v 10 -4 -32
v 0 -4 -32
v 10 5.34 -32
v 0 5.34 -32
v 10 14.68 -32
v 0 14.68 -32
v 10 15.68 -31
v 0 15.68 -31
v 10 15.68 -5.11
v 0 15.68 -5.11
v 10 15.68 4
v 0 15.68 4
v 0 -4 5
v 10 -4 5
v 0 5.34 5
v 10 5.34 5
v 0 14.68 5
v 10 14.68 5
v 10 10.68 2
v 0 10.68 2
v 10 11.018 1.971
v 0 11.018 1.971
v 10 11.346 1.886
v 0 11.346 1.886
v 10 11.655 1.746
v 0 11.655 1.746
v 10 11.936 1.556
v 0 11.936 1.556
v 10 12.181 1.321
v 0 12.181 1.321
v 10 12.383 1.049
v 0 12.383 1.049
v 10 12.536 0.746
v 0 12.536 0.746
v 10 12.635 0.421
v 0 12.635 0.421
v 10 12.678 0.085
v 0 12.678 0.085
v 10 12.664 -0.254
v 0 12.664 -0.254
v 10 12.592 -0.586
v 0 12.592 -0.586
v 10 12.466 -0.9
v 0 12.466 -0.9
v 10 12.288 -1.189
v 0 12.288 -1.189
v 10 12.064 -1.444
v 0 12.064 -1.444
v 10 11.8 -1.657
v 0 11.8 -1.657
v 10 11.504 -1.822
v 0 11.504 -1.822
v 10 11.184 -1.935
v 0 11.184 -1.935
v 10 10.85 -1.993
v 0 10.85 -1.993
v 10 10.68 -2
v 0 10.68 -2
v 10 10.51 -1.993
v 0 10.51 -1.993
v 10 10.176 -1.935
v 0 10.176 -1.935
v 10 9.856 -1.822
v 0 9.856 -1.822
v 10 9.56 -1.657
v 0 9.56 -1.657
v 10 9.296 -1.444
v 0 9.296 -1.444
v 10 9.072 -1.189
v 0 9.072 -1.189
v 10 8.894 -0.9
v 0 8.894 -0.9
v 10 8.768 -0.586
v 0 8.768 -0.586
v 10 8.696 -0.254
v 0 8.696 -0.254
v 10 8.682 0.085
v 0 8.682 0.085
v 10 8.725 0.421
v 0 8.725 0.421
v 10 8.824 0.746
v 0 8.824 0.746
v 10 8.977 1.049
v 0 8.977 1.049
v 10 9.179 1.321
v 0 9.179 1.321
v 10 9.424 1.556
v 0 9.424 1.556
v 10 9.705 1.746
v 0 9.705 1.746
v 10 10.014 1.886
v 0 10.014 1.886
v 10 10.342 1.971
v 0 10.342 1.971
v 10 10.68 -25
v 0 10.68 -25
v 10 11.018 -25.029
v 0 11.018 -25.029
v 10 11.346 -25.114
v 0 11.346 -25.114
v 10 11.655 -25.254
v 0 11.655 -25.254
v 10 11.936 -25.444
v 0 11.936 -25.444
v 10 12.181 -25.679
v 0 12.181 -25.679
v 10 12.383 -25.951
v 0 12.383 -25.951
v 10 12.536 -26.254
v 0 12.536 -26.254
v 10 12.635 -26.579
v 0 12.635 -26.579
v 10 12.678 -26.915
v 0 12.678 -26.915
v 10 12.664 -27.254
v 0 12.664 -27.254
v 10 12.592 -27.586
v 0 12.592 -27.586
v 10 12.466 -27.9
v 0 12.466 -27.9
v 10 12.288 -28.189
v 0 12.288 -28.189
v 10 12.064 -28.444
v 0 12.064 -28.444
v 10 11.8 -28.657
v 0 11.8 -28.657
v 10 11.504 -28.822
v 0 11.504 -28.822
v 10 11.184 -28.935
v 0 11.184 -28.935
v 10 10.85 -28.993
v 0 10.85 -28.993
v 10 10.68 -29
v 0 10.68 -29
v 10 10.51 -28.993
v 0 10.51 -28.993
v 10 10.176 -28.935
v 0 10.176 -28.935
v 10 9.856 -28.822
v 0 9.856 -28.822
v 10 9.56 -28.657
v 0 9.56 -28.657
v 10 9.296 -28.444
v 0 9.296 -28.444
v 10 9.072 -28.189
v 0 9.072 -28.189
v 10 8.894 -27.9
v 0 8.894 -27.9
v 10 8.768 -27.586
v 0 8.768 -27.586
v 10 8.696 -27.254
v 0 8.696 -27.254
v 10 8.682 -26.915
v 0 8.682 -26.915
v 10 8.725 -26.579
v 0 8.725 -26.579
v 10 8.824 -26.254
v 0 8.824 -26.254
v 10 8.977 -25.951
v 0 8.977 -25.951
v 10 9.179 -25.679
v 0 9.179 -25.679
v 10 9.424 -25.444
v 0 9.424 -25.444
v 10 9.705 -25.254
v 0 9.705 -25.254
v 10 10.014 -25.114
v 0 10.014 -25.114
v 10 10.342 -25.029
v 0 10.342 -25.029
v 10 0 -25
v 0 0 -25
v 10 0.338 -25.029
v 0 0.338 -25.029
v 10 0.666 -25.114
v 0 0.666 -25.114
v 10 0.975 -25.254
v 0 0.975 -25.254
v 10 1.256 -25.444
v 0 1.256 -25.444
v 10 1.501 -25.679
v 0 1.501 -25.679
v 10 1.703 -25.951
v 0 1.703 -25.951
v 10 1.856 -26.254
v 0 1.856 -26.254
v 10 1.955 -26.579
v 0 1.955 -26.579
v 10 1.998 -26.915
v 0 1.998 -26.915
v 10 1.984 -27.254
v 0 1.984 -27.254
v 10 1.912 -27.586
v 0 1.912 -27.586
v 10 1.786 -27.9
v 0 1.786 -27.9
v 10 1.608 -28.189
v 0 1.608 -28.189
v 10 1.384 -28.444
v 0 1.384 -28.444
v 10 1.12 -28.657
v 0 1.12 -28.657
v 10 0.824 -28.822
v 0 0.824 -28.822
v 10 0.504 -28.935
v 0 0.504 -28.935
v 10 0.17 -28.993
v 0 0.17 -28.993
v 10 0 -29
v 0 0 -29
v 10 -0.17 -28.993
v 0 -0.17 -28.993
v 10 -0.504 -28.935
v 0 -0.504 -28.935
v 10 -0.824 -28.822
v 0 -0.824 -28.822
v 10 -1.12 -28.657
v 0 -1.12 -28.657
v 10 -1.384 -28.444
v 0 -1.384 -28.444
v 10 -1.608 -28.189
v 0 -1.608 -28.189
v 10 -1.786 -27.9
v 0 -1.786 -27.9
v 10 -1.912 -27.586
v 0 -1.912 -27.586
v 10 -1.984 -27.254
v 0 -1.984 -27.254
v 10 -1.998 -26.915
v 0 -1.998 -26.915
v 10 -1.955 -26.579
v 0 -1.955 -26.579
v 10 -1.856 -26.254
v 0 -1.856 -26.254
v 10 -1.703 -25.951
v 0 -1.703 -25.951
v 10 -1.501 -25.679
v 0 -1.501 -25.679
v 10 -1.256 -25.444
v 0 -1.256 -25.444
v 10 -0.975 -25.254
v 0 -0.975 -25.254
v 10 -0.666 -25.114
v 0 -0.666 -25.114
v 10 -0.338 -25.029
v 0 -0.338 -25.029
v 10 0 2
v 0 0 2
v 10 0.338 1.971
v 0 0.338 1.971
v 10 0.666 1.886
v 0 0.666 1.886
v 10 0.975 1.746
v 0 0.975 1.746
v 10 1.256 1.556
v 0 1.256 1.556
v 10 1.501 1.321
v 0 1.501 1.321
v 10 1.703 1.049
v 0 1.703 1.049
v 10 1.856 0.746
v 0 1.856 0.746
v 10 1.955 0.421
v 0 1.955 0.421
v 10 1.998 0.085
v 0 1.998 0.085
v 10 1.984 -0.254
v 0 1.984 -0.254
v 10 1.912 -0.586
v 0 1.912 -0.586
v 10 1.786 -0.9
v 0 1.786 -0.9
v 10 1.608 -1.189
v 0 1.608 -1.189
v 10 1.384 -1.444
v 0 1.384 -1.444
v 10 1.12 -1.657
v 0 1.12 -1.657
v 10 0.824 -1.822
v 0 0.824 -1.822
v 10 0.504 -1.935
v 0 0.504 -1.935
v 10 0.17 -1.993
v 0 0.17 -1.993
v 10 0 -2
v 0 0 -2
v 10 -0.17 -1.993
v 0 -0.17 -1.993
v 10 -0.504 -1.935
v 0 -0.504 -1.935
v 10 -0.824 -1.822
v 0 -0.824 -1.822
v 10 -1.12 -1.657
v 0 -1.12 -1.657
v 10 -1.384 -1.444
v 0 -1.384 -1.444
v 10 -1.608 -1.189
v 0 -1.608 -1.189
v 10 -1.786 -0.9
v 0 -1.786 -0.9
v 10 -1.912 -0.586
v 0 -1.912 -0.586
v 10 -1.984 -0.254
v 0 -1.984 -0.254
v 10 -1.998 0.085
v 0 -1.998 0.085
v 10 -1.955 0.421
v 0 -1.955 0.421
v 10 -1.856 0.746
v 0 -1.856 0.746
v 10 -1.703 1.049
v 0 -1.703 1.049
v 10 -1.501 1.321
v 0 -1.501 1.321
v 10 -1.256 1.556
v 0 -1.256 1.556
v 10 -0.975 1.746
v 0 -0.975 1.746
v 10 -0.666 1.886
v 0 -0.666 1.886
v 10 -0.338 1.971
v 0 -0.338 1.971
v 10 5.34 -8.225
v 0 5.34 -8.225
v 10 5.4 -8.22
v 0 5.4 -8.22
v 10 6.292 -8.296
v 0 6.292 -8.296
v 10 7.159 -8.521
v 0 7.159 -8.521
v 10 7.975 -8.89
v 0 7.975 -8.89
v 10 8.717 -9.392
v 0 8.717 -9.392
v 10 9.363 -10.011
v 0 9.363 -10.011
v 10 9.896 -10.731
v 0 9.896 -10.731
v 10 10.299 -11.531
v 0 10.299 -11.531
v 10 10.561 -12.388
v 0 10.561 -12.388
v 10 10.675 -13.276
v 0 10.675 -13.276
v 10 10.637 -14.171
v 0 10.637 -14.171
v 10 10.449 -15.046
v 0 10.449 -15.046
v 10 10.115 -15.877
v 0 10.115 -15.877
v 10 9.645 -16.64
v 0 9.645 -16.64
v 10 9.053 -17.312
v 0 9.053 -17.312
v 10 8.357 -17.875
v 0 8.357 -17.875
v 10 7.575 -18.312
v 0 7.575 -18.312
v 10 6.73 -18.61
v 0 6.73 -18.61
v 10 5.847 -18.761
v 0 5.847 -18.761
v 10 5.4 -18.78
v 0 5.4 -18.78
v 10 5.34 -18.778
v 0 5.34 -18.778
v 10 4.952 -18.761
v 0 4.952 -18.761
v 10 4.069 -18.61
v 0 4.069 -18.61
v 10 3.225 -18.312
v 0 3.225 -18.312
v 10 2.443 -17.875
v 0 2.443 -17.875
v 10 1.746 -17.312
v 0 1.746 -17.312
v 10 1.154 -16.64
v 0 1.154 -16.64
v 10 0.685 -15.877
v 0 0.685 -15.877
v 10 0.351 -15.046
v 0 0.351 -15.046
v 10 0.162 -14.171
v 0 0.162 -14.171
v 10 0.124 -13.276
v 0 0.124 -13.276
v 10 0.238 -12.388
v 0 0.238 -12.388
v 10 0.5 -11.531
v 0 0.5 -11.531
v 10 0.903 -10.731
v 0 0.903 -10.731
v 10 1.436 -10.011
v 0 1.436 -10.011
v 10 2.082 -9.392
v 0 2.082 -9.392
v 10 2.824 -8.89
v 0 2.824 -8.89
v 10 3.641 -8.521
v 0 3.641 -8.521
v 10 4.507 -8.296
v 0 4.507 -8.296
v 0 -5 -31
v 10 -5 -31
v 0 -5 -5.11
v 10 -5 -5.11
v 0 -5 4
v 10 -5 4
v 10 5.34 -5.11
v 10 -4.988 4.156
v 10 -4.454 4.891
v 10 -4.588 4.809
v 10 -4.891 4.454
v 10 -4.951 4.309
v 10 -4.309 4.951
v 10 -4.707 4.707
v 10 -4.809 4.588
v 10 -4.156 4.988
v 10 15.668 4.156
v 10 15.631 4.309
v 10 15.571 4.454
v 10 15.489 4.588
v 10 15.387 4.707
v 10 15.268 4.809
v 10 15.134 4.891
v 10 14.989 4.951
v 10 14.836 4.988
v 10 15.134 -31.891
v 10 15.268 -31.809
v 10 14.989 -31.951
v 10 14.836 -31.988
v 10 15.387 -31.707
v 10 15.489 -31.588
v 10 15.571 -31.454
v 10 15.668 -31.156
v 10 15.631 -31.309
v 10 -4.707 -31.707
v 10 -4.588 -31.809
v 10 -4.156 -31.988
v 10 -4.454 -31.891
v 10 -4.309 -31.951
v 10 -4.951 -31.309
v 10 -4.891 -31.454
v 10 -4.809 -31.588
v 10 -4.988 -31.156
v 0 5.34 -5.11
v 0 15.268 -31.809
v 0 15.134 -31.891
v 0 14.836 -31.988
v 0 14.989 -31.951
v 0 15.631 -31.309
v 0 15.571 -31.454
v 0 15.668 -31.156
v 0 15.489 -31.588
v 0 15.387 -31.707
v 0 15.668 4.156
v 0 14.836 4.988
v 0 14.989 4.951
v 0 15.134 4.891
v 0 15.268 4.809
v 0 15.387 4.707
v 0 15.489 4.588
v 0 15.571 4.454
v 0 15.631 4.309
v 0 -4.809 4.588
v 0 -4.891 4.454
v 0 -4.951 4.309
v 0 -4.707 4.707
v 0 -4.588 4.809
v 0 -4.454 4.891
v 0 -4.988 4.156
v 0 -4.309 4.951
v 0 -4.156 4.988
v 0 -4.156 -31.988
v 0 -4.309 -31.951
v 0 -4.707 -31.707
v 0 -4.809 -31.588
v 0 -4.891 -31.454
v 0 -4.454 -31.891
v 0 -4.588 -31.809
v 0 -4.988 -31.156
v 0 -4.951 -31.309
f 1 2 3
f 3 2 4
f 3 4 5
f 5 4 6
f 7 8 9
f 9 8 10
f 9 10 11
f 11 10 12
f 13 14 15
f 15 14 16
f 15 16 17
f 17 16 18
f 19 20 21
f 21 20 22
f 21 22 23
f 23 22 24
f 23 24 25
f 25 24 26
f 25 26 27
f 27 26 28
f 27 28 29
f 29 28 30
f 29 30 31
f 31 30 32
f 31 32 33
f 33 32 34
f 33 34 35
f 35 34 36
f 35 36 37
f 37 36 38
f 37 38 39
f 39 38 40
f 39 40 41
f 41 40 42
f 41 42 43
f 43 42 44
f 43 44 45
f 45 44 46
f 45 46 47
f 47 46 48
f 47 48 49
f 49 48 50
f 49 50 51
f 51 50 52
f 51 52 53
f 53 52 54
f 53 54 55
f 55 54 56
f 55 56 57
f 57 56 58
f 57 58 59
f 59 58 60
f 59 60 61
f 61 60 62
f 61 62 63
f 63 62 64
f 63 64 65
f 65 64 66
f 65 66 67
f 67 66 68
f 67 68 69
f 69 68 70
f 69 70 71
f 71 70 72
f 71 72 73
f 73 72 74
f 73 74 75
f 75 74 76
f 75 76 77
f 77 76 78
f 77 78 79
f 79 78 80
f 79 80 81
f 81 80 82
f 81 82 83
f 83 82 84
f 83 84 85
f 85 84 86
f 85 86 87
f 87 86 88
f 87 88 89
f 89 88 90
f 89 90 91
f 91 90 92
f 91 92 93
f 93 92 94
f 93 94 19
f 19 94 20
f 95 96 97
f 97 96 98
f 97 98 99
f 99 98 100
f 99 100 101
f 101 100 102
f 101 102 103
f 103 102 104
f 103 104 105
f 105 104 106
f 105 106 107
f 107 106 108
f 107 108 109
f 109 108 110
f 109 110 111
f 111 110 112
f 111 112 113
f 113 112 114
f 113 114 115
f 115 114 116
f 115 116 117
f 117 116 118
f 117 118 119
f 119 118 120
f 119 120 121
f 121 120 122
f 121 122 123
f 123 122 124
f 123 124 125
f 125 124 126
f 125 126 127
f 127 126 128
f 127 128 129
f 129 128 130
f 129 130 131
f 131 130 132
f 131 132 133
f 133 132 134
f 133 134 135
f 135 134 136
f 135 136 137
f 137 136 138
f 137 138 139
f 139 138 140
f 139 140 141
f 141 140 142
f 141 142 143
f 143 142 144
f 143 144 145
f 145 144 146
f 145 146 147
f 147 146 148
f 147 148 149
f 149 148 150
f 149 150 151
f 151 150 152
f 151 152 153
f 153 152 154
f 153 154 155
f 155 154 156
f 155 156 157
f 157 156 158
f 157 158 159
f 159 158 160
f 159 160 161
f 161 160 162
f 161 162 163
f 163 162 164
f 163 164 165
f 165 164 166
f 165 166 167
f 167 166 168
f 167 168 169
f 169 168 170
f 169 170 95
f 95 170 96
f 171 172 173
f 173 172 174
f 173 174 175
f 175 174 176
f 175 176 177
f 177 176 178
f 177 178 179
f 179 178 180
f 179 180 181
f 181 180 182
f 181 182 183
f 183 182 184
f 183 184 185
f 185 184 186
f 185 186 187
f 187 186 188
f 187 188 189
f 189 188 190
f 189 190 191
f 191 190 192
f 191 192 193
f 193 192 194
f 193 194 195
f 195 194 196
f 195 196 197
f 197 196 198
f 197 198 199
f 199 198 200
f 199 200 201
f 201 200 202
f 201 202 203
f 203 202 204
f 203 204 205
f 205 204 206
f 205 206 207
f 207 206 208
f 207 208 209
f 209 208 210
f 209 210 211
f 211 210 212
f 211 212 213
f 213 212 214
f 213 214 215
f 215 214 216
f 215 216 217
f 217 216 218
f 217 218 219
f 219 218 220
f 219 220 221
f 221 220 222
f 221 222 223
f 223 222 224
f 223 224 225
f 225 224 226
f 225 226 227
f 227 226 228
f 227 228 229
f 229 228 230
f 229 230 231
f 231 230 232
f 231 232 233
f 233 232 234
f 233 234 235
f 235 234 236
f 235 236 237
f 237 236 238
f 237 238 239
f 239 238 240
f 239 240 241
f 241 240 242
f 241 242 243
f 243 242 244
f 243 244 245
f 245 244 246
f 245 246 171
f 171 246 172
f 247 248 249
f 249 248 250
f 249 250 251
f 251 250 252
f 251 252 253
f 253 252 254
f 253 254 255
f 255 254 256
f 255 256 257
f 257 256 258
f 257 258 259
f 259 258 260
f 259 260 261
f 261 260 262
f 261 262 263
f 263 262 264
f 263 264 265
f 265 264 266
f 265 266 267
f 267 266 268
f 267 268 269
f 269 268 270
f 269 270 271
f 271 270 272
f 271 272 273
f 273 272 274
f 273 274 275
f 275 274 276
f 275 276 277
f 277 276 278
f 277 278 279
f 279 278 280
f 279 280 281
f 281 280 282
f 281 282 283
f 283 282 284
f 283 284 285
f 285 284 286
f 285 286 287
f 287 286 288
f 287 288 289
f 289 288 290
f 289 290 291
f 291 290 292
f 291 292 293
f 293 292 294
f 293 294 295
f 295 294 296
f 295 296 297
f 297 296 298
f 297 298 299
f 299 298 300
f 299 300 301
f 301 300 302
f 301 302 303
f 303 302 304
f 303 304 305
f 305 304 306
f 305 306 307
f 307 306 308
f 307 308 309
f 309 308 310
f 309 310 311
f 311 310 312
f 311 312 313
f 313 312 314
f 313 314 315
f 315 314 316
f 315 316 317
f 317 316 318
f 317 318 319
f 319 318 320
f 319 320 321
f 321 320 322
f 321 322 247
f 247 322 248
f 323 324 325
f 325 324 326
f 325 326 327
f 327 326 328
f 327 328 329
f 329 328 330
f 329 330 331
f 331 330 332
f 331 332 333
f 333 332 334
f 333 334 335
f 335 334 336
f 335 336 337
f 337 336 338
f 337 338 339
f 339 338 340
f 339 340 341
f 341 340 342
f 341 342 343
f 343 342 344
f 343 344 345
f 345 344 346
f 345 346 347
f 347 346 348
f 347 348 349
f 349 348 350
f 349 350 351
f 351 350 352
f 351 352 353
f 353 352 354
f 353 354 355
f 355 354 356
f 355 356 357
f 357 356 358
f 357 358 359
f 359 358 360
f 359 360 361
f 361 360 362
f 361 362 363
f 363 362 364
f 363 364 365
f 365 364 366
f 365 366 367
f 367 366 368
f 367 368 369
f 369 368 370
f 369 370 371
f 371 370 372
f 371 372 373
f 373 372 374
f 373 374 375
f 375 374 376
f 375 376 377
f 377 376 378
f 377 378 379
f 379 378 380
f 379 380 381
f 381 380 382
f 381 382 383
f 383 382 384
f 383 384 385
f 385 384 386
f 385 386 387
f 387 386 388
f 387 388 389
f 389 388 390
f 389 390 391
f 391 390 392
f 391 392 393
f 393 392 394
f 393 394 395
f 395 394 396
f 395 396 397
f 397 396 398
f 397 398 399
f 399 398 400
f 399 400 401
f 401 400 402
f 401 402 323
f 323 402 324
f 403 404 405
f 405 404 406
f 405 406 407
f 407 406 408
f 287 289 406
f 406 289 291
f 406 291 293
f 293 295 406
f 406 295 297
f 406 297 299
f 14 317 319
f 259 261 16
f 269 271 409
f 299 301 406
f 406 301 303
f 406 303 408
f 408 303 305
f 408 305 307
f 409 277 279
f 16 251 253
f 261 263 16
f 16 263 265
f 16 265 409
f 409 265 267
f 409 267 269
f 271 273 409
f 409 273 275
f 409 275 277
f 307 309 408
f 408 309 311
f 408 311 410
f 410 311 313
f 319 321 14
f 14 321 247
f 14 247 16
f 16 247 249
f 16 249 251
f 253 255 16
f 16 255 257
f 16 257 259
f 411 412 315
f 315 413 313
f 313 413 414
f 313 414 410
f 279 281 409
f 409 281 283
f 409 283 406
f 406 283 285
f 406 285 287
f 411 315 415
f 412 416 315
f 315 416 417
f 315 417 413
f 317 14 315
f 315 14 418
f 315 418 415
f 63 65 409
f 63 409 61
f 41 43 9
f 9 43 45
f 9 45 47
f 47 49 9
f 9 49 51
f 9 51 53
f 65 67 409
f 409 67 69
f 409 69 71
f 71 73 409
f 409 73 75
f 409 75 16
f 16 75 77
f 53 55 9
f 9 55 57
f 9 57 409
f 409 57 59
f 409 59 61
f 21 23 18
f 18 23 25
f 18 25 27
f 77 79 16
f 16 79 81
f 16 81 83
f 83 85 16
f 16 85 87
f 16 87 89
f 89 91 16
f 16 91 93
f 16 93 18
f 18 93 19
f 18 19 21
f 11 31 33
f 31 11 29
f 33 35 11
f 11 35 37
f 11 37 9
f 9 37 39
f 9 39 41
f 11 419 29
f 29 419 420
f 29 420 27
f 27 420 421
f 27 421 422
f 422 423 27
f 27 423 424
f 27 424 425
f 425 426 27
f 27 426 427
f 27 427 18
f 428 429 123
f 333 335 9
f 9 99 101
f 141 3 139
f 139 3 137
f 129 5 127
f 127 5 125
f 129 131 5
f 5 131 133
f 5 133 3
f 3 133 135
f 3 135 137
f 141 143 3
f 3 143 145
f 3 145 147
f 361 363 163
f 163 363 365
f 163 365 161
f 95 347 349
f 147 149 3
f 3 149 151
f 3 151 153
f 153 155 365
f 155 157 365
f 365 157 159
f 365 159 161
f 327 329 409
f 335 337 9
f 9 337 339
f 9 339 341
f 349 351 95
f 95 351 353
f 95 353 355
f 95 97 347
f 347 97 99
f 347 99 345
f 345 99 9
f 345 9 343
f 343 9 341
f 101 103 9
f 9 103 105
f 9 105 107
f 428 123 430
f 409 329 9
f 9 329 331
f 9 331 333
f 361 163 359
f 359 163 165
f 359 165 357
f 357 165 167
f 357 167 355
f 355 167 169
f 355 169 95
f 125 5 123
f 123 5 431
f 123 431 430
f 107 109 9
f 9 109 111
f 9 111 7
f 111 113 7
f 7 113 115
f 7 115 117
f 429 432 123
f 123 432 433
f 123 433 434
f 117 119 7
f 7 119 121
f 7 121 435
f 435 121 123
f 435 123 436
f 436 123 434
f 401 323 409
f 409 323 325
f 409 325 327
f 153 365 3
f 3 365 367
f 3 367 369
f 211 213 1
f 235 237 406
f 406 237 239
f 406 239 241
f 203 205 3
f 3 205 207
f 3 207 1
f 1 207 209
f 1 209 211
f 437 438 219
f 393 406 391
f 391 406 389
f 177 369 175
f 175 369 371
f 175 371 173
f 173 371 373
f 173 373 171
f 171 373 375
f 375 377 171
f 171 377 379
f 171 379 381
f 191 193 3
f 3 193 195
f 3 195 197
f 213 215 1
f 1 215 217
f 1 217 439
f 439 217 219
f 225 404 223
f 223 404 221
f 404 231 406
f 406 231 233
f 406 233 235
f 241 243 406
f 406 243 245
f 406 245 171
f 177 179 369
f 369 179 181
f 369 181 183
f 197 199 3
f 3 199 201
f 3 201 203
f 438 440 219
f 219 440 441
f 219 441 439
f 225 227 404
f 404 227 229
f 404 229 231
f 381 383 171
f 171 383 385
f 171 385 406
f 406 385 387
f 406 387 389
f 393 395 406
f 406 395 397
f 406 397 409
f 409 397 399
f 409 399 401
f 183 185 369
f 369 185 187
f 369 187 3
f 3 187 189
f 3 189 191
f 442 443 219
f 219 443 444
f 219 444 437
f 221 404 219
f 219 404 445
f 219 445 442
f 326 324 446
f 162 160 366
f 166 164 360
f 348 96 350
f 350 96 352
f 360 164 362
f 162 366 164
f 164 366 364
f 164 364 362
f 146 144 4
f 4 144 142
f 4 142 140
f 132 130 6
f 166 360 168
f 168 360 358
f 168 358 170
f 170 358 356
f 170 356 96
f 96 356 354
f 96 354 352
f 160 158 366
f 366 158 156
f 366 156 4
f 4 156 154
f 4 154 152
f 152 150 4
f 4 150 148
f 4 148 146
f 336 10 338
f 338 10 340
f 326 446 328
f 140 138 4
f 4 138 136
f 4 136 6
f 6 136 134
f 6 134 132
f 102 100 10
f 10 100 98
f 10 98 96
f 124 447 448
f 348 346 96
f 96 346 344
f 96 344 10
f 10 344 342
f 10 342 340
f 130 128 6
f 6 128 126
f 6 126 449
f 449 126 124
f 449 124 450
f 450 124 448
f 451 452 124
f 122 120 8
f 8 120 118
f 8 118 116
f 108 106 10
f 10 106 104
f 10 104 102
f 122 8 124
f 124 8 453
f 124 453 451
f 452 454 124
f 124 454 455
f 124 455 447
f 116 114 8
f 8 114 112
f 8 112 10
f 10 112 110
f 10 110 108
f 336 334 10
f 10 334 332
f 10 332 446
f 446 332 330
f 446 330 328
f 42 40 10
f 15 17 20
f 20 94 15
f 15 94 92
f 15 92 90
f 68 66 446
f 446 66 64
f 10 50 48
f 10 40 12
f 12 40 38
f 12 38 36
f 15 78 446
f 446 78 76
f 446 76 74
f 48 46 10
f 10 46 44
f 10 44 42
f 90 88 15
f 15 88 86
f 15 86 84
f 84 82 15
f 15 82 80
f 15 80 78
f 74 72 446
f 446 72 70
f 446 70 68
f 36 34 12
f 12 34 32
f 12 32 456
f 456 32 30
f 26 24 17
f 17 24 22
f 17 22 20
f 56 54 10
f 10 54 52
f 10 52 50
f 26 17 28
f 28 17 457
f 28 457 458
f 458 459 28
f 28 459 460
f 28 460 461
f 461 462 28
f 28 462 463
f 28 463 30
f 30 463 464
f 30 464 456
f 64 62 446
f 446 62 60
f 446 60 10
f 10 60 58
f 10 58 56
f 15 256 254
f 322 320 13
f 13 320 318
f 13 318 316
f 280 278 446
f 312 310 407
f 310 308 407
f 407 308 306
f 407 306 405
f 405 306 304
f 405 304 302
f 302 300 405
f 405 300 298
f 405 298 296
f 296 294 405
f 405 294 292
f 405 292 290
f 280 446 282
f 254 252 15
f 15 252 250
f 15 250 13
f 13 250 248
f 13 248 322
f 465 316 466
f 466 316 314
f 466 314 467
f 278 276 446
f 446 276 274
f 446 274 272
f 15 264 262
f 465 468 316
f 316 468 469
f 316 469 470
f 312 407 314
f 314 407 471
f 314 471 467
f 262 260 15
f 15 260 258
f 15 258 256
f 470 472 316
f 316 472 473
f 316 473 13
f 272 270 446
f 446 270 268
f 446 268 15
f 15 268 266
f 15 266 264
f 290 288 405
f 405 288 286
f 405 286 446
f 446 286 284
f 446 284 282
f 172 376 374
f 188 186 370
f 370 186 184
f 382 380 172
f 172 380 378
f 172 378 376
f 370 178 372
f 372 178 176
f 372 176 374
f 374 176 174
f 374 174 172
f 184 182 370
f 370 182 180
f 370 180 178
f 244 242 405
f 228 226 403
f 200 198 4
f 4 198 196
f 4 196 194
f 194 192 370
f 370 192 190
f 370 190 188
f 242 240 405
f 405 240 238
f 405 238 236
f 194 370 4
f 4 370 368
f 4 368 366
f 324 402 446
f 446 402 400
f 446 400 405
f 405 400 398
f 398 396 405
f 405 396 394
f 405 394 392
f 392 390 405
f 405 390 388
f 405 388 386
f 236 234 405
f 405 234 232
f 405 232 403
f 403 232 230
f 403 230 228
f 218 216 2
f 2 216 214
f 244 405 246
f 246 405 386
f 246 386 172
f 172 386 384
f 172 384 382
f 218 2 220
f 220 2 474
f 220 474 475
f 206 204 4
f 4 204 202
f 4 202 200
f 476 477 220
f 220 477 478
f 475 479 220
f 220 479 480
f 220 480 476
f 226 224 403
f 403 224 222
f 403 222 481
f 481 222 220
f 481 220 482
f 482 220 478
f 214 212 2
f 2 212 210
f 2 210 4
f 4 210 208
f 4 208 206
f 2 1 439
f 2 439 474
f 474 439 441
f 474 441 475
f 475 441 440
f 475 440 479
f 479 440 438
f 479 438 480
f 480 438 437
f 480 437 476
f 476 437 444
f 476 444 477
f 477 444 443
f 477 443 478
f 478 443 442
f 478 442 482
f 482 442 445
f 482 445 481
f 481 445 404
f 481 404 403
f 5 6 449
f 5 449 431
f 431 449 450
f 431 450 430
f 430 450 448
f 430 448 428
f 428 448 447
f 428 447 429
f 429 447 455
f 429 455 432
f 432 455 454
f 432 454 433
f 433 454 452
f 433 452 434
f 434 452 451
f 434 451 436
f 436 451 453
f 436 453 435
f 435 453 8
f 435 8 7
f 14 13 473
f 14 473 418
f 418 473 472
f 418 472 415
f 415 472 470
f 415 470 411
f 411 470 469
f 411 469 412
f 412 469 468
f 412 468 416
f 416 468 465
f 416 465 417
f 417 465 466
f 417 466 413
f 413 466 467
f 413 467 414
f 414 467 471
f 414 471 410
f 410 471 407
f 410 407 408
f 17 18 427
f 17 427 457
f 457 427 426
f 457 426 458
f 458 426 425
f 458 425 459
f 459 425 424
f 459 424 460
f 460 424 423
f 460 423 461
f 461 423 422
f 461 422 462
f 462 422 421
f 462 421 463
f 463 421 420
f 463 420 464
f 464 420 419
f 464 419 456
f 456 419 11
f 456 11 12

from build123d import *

# Parameters (mm, degrees)
SKETCH_1_R      = 2
SKETCH_1_R_2    = 5.280330007
EXTRUDE_1_DEPTH = 10
FILLET_1_R      = 1


with BuildPart() as part:
    # Эскиз1 → Бобышка-Вытянуть1 (new body)
    with BuildSketch(Plane(origin=(0, 0, 0), x_dir=(0, 0, -1), z_dir=(1, 0, 0))):
        Polygon((-5, 15.68), (-5, 10.68), (-5, 0), (-5, -5), (27, -5), (32, -5), (32, 15.68), align=None)
        Circle(SKETCH_1_R, mode=Mode.SUBTRACT)
        with Locations((27, 0)):
            Circle(SKETCH_1_R, mode=Mode.SUBTRACT)
        with Locations((0, 10.68)):
            Circle(SKETCH_1_R, mode=Mode.SUBTRACT)
        with Locations((13.5, 5.399669993)):
            Circle(SKETCH_1_R_2, mode=Mode.SUBTRACT)
        with Locations((27, 10.68)):
            Circle(SKETCH_1_R, mode=Mode.SUBTRACT)
    extrude(amount=EXTRUDE_1_DEPTH)

    # Скругление1
    fillet_1_edges = [part.edges().sort_by_distance(p)[0] for p in [
        (5, -5, -32),
        (5, -5, 5),
        (5, 15.68, 5),
        (5, 15.68, -32),
    ]]
    fillet(fillet_1_edges, radius=FILLET_1_R)


solid = part.part
